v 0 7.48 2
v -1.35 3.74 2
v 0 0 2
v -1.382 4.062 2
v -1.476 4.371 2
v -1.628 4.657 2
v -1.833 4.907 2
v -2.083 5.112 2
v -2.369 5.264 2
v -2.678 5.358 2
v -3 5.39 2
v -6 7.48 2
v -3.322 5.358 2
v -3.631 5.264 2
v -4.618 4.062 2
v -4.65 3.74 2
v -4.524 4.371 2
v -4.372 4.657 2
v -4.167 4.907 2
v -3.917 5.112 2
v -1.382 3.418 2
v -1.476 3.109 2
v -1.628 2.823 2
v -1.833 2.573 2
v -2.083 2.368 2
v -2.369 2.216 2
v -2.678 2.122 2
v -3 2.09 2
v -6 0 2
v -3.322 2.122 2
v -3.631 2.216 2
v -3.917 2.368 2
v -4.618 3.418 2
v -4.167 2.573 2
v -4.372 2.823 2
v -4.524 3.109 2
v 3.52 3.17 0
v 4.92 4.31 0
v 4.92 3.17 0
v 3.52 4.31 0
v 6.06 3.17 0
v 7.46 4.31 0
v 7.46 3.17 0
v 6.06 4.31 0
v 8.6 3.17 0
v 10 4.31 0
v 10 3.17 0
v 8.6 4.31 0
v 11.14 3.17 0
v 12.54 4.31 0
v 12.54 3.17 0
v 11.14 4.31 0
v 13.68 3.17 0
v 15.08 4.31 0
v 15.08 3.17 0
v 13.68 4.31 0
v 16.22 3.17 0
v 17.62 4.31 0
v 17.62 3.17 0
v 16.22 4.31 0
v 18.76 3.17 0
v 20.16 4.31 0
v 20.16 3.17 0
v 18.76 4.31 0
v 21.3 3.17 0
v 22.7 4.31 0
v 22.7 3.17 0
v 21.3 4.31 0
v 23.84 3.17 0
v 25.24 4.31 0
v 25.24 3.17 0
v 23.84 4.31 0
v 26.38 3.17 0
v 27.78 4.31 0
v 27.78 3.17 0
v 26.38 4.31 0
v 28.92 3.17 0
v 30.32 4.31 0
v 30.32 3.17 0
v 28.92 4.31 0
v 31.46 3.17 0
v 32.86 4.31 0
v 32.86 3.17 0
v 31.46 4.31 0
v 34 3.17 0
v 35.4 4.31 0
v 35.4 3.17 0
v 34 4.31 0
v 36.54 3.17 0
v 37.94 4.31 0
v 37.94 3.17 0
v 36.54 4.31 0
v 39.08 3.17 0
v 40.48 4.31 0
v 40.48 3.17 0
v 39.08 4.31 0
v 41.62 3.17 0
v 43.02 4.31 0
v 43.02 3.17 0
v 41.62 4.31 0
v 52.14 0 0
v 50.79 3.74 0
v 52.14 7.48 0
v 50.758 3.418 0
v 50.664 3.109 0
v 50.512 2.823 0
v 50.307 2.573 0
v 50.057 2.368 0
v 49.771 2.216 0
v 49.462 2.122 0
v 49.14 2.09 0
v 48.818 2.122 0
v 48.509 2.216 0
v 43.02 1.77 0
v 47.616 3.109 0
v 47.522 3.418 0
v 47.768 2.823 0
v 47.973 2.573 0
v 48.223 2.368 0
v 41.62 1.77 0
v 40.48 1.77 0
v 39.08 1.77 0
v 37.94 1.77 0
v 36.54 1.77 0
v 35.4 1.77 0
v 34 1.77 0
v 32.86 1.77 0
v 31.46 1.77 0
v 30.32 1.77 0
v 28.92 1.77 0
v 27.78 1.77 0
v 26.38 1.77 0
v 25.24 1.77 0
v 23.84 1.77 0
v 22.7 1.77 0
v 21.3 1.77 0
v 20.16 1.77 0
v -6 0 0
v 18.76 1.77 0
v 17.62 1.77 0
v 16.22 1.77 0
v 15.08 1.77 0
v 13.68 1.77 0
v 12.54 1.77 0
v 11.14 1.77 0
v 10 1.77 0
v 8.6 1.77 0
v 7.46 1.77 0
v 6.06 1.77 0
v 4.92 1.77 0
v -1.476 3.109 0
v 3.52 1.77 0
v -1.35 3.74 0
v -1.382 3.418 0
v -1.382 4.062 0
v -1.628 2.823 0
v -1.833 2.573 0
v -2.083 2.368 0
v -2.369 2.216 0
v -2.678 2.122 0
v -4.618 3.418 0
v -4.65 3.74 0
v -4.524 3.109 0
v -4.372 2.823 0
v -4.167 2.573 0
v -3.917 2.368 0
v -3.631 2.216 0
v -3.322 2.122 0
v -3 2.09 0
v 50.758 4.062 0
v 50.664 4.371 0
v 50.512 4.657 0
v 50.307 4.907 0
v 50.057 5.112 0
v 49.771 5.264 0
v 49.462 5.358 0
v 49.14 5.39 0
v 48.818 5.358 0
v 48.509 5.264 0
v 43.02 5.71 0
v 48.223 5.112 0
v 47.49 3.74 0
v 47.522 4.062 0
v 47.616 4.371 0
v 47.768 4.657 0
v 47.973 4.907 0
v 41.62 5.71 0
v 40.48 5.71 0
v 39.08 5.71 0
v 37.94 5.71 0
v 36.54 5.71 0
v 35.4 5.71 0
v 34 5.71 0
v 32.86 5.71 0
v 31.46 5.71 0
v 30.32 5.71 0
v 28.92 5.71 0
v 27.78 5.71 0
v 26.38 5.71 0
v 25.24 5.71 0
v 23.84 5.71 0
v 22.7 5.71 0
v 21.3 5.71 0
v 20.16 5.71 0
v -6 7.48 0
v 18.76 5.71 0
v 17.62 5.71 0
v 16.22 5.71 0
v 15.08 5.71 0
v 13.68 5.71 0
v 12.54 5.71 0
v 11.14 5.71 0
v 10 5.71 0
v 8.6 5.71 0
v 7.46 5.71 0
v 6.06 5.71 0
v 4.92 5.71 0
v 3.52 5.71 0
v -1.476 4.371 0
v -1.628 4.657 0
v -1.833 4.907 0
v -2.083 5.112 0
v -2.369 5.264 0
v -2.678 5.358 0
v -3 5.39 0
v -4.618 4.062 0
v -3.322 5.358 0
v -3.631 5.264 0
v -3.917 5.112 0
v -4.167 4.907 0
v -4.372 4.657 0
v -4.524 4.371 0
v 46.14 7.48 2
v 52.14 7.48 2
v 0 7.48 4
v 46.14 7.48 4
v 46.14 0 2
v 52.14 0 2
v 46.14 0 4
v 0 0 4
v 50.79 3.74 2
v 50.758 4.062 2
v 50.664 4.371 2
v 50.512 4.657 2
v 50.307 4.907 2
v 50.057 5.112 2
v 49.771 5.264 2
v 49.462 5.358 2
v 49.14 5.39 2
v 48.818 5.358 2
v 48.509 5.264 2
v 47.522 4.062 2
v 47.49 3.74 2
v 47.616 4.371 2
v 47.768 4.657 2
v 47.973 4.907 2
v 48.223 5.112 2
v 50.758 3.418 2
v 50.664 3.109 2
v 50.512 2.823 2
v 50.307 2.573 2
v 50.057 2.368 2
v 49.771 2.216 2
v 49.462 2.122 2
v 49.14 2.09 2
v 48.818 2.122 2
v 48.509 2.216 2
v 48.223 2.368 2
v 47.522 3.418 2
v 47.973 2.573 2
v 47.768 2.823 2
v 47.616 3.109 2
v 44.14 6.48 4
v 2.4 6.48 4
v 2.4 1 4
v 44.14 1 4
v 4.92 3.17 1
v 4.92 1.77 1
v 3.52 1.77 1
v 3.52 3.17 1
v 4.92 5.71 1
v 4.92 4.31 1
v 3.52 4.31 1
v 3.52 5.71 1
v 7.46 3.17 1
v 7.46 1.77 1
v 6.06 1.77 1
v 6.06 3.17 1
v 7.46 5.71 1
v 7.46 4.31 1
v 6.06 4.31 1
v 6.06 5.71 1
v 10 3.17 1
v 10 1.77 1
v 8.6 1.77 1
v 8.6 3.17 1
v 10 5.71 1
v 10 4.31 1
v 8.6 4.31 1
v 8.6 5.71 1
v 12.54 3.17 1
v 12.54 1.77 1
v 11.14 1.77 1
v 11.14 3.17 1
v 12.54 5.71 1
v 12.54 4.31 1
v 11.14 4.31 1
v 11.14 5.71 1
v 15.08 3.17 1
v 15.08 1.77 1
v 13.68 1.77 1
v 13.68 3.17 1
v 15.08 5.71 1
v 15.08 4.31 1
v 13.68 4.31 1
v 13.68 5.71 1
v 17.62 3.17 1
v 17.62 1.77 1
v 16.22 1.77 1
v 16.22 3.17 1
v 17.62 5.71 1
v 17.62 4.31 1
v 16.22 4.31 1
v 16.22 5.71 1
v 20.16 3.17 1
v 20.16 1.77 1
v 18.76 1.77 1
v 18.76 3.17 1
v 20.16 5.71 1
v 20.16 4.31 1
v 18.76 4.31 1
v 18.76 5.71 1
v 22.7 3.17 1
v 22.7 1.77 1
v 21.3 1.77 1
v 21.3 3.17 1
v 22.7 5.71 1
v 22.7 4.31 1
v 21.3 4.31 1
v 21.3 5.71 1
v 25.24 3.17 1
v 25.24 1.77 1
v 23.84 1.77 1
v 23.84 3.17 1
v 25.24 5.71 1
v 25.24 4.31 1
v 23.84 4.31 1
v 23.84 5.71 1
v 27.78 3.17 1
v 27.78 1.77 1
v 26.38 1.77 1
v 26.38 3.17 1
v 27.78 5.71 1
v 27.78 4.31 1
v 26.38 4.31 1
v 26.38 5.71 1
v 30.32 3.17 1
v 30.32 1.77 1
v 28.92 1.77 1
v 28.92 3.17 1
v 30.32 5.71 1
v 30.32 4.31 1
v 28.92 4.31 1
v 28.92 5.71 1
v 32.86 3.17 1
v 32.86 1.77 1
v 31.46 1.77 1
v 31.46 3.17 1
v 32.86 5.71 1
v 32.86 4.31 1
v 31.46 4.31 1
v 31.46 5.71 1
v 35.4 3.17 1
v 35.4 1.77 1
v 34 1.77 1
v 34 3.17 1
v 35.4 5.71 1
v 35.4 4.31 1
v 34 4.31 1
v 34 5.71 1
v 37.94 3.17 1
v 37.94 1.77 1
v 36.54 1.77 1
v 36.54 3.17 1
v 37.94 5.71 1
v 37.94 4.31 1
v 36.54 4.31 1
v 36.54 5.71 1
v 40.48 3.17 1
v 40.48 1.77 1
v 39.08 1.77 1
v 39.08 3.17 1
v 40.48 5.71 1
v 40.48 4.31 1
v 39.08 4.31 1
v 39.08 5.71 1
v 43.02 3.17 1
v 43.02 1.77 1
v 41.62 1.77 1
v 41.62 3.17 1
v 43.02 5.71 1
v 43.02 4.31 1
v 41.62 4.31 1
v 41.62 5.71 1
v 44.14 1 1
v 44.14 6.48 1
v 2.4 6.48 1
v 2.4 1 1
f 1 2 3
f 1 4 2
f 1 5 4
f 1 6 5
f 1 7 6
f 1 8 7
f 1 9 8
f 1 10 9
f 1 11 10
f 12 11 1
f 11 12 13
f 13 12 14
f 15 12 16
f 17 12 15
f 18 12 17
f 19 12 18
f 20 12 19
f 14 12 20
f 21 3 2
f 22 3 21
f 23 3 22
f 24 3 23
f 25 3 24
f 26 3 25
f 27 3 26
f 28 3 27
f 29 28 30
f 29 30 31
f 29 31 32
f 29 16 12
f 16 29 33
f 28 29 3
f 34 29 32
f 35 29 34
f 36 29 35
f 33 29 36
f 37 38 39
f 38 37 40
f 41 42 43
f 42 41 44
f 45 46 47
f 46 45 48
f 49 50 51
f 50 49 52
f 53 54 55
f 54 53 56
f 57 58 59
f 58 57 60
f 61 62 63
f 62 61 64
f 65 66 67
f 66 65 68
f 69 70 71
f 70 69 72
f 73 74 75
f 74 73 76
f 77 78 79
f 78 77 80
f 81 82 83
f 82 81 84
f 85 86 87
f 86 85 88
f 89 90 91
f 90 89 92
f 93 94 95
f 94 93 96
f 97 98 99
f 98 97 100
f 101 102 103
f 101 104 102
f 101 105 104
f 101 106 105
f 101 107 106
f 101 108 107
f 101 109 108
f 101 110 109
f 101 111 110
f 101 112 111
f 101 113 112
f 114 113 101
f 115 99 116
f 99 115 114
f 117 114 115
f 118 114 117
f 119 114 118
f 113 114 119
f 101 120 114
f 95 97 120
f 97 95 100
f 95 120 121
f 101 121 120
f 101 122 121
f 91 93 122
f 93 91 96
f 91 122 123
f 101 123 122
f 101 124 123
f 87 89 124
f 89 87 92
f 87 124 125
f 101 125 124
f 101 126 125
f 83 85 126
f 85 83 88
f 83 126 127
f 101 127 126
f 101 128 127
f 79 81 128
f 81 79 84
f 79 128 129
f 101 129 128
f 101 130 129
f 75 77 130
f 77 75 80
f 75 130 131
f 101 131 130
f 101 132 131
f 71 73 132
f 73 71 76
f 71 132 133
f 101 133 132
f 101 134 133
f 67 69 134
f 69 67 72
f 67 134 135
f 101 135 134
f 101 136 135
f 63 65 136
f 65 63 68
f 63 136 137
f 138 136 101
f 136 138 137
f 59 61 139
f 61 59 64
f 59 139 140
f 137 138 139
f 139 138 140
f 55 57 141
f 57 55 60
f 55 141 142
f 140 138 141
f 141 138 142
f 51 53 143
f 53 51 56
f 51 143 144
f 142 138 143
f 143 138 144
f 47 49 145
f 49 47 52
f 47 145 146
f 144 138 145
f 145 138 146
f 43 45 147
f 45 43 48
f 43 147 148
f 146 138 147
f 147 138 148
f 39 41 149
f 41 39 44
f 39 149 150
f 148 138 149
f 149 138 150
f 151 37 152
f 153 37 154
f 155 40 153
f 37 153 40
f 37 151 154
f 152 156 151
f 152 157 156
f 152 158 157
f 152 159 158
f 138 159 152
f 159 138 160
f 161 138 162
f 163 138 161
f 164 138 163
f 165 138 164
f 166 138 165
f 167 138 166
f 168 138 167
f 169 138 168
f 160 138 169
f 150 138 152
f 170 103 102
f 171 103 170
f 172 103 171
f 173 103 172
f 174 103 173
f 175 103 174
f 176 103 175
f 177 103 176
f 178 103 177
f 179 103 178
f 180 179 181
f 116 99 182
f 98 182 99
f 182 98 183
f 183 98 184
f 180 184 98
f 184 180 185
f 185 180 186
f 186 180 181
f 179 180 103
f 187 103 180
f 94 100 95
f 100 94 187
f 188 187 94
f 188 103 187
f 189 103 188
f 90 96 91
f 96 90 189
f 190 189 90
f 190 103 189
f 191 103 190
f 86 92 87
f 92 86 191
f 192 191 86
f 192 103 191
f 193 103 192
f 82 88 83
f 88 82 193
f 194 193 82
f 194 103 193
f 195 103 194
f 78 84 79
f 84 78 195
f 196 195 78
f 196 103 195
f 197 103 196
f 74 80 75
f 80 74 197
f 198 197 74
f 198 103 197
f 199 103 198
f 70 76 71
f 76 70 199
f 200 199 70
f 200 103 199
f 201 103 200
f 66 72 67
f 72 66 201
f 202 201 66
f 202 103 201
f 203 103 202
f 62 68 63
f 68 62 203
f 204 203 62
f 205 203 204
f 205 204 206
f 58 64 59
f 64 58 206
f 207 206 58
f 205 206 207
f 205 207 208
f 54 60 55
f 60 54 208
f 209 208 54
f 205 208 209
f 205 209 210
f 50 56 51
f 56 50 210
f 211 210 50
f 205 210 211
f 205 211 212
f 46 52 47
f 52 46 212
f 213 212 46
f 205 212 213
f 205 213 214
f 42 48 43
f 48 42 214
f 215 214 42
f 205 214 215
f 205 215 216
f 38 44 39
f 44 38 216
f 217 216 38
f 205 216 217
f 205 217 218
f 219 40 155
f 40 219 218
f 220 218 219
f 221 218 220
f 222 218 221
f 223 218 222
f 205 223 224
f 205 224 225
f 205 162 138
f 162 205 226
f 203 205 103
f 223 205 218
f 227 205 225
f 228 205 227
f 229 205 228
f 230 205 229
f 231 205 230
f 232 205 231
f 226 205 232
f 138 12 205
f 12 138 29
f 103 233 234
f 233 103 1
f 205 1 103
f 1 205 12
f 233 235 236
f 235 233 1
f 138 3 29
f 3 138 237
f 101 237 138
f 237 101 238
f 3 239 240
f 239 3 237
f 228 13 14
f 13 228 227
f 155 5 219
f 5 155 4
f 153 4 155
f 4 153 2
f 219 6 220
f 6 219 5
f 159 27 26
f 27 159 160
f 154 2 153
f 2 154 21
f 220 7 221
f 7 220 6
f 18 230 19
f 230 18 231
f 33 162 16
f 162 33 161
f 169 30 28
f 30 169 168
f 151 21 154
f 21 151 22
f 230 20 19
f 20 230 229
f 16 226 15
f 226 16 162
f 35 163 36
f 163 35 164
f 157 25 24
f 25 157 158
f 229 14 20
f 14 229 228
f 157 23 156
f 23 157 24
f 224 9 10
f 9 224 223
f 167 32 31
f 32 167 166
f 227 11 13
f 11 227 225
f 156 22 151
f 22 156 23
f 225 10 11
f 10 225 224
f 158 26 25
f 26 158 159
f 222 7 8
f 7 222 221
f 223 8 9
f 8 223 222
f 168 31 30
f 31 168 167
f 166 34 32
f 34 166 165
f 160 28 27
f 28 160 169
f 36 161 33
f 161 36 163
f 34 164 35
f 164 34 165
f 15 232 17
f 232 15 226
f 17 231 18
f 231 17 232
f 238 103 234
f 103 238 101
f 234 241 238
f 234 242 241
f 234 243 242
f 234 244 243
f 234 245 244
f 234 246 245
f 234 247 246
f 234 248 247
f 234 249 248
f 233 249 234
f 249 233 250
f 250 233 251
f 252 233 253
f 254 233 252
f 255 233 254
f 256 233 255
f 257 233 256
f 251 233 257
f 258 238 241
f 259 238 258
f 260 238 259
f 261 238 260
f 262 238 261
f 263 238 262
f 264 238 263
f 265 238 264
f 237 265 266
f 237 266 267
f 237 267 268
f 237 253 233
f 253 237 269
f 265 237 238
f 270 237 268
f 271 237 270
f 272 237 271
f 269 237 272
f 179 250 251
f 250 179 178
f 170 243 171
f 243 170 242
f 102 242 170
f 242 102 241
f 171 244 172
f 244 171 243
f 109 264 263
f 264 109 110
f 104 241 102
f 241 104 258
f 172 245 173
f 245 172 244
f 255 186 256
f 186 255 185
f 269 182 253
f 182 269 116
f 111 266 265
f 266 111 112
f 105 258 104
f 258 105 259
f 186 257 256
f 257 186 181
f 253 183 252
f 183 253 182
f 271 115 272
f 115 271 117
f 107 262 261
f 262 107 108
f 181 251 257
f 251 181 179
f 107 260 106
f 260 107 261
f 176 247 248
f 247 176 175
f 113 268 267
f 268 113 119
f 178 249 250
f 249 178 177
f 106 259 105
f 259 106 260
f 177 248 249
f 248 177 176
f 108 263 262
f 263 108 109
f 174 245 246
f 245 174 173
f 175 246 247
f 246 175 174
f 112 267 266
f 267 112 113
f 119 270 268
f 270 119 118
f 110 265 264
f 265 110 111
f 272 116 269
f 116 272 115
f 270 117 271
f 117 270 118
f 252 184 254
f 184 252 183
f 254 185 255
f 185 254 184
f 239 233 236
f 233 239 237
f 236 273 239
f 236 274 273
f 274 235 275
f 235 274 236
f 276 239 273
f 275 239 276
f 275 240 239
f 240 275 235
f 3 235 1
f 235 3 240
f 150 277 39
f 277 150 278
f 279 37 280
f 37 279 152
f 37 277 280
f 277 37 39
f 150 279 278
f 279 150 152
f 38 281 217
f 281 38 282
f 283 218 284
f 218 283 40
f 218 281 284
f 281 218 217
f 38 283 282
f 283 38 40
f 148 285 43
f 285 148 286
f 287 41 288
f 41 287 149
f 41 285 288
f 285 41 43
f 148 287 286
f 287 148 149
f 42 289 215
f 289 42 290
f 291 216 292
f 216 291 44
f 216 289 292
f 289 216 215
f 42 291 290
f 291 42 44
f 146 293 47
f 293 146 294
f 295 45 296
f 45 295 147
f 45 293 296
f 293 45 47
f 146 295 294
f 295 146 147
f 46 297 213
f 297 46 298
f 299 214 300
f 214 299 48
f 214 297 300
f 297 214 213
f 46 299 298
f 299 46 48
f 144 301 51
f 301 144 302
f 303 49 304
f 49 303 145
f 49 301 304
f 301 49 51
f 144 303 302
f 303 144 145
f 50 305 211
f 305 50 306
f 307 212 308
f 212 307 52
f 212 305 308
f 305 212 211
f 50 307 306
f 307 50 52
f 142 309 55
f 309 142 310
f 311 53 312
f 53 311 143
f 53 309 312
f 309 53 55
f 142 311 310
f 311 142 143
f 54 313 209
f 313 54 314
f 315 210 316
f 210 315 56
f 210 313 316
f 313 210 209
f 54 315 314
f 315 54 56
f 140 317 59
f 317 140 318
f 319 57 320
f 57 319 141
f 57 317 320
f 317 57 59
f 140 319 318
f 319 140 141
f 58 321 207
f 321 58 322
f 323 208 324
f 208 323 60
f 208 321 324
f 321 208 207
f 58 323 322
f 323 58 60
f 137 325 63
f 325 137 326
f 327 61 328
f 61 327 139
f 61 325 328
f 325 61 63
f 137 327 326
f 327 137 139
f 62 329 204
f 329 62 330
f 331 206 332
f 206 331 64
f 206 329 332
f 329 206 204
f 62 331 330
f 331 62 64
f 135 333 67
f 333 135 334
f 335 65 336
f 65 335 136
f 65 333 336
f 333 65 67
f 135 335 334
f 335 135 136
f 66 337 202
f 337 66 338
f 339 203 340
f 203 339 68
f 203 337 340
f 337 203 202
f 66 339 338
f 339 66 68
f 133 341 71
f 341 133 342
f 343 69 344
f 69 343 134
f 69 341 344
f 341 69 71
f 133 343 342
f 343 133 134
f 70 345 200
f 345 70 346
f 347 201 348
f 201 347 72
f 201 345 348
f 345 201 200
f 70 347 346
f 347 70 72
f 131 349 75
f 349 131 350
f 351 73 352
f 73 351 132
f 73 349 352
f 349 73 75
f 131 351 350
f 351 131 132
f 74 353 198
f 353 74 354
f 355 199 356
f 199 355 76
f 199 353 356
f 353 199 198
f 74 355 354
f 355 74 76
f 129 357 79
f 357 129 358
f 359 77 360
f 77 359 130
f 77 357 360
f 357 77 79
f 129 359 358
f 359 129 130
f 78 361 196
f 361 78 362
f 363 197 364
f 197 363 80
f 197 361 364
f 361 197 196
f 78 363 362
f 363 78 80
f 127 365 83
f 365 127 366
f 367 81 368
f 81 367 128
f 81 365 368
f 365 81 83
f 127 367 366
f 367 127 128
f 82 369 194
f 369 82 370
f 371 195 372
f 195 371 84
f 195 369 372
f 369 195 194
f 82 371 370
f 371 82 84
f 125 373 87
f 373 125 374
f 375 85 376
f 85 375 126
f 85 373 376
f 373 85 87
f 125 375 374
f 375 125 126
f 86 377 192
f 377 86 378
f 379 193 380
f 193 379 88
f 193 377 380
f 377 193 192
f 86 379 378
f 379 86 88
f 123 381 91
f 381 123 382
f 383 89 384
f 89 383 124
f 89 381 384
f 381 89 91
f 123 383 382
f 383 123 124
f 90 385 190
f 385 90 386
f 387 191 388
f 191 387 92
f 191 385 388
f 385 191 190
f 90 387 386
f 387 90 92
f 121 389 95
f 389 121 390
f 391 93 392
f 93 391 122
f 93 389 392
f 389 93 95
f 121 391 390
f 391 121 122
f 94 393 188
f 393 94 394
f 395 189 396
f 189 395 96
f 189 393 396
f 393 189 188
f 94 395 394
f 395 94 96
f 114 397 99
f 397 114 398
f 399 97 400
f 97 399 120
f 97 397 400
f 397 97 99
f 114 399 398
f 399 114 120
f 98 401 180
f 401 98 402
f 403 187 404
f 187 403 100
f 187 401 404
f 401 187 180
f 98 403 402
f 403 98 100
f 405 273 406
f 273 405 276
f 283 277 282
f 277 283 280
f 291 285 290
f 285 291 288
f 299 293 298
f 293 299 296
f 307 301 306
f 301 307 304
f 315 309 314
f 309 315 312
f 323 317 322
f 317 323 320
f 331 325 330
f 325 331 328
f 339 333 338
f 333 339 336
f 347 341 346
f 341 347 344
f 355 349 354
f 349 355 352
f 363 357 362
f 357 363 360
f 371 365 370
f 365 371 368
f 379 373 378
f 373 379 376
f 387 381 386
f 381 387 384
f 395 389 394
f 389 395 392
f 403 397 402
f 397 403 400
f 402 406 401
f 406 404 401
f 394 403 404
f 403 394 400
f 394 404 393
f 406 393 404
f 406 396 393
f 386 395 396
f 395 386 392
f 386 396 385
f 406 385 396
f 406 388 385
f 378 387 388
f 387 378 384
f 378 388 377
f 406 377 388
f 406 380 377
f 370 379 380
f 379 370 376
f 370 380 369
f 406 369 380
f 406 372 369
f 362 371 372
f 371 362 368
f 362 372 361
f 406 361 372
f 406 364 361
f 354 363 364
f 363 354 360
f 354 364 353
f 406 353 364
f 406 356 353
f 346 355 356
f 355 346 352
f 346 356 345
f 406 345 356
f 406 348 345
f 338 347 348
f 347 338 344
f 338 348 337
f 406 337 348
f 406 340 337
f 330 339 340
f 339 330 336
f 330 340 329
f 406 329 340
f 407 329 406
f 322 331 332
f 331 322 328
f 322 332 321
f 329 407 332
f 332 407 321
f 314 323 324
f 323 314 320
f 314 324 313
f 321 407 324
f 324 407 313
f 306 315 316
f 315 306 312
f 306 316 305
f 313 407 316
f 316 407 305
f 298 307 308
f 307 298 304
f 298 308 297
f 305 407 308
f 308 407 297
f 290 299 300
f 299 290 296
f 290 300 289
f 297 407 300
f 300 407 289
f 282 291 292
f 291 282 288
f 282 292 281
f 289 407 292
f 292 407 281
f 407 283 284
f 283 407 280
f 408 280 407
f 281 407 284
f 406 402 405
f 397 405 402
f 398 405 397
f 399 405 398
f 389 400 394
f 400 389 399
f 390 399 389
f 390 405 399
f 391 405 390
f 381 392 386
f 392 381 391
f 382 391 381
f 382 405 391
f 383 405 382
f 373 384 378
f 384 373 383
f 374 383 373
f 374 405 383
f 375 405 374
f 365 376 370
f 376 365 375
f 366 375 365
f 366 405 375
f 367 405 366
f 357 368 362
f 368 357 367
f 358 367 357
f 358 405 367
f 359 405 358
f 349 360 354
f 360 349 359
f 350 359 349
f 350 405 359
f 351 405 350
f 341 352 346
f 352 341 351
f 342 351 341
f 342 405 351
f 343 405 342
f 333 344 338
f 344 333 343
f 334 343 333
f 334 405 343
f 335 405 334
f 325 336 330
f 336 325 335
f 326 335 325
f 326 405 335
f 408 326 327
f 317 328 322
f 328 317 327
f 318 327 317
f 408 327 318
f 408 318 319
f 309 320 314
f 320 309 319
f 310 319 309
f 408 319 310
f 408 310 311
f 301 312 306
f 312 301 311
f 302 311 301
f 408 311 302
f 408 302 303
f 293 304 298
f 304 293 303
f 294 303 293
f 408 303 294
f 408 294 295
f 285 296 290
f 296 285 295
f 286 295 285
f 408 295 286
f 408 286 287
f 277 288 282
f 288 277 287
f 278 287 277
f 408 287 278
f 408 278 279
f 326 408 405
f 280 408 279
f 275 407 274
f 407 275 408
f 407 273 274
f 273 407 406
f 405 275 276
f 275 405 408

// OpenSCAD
// Holder for 2 x 16 standard male header pins (2.54 mm, 0.64 mm square pins,
// 2.5 mm plastic spacer): two 1 x 16 strips side by side, or four 1 x 8 strips
// laid two end to end per row (the owner's; the floor holes keep the pitch
// across the joint). Plugs straight into the car's 32-way Blue&Me plug (TE MQS,
// 2 x 16 at 2.54 mm), which gets glued or tied on (owner, 2026-09-28: keep it
// simple).
//
// The floor is the bottom of the holder, with a hole for each pin. The strips
// drop in from the top, tails down through the holes, until their spacers sit
// on the floor; pushing the holder onto the plug, the floor pushes the strips
// with it. The walls stand 0.5 mm above the spacers (4.0 mm from the bottom,
// owner), so the plug's face rests on the walls and the pins reach 0.5 mm less
// deep than on the spacers. Wires solder to the tails sticking out under the
// floor; a drop of glue there afterwards.
// No printed marks (they failed on a 0.6 mm nozzle): mark pins 1 and 17 with a
// pen, and put them to the corner of the plug moulded "1" / "17".
//
// Frame: X along the strips from the pin 16/32 end (the thicker end), Y across,
// Z up (mating side up, print this way).

pitch = 2.54;
spacer = [16 * pitch, 2 * pitch, 2.5];   // two rows side by side
fit = [1.1, 0.4];                        // slack round the spacers: 0.5 mm more lengthwise, the
                                         // owner's strips' plastic runs past the end pins
pocket = [spacer[0] + fit[0], spacer[1] + fit[1], spacer[2] + 0.5];   // walls 0.5 mm above the spacers (owner)
wall = 1.0;                              // long sides
end_wall = [2.4, 2.0];                   // pin 16/32 end 0.4 mm thicker than the pin 1/17 end,
                                         // as on the original (4.6 vs 4.2 mm to the nearest pin)
floor_t = 1.0;                           // leaves 2 mm of a standard 3 mm tail below it
tail_hole = 1.4;                         // square holes for 0.64 mm square tails: square for a
                                         // 0.6 mm nozzle, 1.14 mm (two lines) of floor between them
ear = [6, 2, 3.3];                       // length, thickness, M3 hole

outer = [pocket[0] + end_wall[0] + end_wall[1], pocket[1] + 2 * wall, floor_t + pocket[2]];
$fn = 32;

difference() {
    union() {
        cube(outer);
        for (x = [-ear[0], outer[0] - 0.5]) translate([x, 0, 0]) difference() {
            cube([ear[0] + 0.5, outer[1], ear[1]]);                      // 0.5 into the body
            translate([x < 0 ? ear[0] / 2 : ear[0] / 2 + 0.5, outer[1] / 2, -1]) cylinder(d = ear[2], h = ear[1] + 2);
        }
    }
    // pocket for the spacers, down to the floor
    translate([end_wall[0], wall, floor_t]) cube([pocket[0], pocket[1], pocket[2] + 1]);
    // a square hole through the floor for each pin, 2 x 16 round the pocket centre
    for (k = [0:15], row = [-1, 1])
        translate([end_wall[0] + pocket[0] / 2 + (k - 7.5) * pitch, wall + pocket[1] / 2 + row * pitch / 2, -1])
            translate([-tail_hole / 2, -tail_hole / 2, 0]) cube([tail_hole, tail_hole, floor_t + 2]);
}
